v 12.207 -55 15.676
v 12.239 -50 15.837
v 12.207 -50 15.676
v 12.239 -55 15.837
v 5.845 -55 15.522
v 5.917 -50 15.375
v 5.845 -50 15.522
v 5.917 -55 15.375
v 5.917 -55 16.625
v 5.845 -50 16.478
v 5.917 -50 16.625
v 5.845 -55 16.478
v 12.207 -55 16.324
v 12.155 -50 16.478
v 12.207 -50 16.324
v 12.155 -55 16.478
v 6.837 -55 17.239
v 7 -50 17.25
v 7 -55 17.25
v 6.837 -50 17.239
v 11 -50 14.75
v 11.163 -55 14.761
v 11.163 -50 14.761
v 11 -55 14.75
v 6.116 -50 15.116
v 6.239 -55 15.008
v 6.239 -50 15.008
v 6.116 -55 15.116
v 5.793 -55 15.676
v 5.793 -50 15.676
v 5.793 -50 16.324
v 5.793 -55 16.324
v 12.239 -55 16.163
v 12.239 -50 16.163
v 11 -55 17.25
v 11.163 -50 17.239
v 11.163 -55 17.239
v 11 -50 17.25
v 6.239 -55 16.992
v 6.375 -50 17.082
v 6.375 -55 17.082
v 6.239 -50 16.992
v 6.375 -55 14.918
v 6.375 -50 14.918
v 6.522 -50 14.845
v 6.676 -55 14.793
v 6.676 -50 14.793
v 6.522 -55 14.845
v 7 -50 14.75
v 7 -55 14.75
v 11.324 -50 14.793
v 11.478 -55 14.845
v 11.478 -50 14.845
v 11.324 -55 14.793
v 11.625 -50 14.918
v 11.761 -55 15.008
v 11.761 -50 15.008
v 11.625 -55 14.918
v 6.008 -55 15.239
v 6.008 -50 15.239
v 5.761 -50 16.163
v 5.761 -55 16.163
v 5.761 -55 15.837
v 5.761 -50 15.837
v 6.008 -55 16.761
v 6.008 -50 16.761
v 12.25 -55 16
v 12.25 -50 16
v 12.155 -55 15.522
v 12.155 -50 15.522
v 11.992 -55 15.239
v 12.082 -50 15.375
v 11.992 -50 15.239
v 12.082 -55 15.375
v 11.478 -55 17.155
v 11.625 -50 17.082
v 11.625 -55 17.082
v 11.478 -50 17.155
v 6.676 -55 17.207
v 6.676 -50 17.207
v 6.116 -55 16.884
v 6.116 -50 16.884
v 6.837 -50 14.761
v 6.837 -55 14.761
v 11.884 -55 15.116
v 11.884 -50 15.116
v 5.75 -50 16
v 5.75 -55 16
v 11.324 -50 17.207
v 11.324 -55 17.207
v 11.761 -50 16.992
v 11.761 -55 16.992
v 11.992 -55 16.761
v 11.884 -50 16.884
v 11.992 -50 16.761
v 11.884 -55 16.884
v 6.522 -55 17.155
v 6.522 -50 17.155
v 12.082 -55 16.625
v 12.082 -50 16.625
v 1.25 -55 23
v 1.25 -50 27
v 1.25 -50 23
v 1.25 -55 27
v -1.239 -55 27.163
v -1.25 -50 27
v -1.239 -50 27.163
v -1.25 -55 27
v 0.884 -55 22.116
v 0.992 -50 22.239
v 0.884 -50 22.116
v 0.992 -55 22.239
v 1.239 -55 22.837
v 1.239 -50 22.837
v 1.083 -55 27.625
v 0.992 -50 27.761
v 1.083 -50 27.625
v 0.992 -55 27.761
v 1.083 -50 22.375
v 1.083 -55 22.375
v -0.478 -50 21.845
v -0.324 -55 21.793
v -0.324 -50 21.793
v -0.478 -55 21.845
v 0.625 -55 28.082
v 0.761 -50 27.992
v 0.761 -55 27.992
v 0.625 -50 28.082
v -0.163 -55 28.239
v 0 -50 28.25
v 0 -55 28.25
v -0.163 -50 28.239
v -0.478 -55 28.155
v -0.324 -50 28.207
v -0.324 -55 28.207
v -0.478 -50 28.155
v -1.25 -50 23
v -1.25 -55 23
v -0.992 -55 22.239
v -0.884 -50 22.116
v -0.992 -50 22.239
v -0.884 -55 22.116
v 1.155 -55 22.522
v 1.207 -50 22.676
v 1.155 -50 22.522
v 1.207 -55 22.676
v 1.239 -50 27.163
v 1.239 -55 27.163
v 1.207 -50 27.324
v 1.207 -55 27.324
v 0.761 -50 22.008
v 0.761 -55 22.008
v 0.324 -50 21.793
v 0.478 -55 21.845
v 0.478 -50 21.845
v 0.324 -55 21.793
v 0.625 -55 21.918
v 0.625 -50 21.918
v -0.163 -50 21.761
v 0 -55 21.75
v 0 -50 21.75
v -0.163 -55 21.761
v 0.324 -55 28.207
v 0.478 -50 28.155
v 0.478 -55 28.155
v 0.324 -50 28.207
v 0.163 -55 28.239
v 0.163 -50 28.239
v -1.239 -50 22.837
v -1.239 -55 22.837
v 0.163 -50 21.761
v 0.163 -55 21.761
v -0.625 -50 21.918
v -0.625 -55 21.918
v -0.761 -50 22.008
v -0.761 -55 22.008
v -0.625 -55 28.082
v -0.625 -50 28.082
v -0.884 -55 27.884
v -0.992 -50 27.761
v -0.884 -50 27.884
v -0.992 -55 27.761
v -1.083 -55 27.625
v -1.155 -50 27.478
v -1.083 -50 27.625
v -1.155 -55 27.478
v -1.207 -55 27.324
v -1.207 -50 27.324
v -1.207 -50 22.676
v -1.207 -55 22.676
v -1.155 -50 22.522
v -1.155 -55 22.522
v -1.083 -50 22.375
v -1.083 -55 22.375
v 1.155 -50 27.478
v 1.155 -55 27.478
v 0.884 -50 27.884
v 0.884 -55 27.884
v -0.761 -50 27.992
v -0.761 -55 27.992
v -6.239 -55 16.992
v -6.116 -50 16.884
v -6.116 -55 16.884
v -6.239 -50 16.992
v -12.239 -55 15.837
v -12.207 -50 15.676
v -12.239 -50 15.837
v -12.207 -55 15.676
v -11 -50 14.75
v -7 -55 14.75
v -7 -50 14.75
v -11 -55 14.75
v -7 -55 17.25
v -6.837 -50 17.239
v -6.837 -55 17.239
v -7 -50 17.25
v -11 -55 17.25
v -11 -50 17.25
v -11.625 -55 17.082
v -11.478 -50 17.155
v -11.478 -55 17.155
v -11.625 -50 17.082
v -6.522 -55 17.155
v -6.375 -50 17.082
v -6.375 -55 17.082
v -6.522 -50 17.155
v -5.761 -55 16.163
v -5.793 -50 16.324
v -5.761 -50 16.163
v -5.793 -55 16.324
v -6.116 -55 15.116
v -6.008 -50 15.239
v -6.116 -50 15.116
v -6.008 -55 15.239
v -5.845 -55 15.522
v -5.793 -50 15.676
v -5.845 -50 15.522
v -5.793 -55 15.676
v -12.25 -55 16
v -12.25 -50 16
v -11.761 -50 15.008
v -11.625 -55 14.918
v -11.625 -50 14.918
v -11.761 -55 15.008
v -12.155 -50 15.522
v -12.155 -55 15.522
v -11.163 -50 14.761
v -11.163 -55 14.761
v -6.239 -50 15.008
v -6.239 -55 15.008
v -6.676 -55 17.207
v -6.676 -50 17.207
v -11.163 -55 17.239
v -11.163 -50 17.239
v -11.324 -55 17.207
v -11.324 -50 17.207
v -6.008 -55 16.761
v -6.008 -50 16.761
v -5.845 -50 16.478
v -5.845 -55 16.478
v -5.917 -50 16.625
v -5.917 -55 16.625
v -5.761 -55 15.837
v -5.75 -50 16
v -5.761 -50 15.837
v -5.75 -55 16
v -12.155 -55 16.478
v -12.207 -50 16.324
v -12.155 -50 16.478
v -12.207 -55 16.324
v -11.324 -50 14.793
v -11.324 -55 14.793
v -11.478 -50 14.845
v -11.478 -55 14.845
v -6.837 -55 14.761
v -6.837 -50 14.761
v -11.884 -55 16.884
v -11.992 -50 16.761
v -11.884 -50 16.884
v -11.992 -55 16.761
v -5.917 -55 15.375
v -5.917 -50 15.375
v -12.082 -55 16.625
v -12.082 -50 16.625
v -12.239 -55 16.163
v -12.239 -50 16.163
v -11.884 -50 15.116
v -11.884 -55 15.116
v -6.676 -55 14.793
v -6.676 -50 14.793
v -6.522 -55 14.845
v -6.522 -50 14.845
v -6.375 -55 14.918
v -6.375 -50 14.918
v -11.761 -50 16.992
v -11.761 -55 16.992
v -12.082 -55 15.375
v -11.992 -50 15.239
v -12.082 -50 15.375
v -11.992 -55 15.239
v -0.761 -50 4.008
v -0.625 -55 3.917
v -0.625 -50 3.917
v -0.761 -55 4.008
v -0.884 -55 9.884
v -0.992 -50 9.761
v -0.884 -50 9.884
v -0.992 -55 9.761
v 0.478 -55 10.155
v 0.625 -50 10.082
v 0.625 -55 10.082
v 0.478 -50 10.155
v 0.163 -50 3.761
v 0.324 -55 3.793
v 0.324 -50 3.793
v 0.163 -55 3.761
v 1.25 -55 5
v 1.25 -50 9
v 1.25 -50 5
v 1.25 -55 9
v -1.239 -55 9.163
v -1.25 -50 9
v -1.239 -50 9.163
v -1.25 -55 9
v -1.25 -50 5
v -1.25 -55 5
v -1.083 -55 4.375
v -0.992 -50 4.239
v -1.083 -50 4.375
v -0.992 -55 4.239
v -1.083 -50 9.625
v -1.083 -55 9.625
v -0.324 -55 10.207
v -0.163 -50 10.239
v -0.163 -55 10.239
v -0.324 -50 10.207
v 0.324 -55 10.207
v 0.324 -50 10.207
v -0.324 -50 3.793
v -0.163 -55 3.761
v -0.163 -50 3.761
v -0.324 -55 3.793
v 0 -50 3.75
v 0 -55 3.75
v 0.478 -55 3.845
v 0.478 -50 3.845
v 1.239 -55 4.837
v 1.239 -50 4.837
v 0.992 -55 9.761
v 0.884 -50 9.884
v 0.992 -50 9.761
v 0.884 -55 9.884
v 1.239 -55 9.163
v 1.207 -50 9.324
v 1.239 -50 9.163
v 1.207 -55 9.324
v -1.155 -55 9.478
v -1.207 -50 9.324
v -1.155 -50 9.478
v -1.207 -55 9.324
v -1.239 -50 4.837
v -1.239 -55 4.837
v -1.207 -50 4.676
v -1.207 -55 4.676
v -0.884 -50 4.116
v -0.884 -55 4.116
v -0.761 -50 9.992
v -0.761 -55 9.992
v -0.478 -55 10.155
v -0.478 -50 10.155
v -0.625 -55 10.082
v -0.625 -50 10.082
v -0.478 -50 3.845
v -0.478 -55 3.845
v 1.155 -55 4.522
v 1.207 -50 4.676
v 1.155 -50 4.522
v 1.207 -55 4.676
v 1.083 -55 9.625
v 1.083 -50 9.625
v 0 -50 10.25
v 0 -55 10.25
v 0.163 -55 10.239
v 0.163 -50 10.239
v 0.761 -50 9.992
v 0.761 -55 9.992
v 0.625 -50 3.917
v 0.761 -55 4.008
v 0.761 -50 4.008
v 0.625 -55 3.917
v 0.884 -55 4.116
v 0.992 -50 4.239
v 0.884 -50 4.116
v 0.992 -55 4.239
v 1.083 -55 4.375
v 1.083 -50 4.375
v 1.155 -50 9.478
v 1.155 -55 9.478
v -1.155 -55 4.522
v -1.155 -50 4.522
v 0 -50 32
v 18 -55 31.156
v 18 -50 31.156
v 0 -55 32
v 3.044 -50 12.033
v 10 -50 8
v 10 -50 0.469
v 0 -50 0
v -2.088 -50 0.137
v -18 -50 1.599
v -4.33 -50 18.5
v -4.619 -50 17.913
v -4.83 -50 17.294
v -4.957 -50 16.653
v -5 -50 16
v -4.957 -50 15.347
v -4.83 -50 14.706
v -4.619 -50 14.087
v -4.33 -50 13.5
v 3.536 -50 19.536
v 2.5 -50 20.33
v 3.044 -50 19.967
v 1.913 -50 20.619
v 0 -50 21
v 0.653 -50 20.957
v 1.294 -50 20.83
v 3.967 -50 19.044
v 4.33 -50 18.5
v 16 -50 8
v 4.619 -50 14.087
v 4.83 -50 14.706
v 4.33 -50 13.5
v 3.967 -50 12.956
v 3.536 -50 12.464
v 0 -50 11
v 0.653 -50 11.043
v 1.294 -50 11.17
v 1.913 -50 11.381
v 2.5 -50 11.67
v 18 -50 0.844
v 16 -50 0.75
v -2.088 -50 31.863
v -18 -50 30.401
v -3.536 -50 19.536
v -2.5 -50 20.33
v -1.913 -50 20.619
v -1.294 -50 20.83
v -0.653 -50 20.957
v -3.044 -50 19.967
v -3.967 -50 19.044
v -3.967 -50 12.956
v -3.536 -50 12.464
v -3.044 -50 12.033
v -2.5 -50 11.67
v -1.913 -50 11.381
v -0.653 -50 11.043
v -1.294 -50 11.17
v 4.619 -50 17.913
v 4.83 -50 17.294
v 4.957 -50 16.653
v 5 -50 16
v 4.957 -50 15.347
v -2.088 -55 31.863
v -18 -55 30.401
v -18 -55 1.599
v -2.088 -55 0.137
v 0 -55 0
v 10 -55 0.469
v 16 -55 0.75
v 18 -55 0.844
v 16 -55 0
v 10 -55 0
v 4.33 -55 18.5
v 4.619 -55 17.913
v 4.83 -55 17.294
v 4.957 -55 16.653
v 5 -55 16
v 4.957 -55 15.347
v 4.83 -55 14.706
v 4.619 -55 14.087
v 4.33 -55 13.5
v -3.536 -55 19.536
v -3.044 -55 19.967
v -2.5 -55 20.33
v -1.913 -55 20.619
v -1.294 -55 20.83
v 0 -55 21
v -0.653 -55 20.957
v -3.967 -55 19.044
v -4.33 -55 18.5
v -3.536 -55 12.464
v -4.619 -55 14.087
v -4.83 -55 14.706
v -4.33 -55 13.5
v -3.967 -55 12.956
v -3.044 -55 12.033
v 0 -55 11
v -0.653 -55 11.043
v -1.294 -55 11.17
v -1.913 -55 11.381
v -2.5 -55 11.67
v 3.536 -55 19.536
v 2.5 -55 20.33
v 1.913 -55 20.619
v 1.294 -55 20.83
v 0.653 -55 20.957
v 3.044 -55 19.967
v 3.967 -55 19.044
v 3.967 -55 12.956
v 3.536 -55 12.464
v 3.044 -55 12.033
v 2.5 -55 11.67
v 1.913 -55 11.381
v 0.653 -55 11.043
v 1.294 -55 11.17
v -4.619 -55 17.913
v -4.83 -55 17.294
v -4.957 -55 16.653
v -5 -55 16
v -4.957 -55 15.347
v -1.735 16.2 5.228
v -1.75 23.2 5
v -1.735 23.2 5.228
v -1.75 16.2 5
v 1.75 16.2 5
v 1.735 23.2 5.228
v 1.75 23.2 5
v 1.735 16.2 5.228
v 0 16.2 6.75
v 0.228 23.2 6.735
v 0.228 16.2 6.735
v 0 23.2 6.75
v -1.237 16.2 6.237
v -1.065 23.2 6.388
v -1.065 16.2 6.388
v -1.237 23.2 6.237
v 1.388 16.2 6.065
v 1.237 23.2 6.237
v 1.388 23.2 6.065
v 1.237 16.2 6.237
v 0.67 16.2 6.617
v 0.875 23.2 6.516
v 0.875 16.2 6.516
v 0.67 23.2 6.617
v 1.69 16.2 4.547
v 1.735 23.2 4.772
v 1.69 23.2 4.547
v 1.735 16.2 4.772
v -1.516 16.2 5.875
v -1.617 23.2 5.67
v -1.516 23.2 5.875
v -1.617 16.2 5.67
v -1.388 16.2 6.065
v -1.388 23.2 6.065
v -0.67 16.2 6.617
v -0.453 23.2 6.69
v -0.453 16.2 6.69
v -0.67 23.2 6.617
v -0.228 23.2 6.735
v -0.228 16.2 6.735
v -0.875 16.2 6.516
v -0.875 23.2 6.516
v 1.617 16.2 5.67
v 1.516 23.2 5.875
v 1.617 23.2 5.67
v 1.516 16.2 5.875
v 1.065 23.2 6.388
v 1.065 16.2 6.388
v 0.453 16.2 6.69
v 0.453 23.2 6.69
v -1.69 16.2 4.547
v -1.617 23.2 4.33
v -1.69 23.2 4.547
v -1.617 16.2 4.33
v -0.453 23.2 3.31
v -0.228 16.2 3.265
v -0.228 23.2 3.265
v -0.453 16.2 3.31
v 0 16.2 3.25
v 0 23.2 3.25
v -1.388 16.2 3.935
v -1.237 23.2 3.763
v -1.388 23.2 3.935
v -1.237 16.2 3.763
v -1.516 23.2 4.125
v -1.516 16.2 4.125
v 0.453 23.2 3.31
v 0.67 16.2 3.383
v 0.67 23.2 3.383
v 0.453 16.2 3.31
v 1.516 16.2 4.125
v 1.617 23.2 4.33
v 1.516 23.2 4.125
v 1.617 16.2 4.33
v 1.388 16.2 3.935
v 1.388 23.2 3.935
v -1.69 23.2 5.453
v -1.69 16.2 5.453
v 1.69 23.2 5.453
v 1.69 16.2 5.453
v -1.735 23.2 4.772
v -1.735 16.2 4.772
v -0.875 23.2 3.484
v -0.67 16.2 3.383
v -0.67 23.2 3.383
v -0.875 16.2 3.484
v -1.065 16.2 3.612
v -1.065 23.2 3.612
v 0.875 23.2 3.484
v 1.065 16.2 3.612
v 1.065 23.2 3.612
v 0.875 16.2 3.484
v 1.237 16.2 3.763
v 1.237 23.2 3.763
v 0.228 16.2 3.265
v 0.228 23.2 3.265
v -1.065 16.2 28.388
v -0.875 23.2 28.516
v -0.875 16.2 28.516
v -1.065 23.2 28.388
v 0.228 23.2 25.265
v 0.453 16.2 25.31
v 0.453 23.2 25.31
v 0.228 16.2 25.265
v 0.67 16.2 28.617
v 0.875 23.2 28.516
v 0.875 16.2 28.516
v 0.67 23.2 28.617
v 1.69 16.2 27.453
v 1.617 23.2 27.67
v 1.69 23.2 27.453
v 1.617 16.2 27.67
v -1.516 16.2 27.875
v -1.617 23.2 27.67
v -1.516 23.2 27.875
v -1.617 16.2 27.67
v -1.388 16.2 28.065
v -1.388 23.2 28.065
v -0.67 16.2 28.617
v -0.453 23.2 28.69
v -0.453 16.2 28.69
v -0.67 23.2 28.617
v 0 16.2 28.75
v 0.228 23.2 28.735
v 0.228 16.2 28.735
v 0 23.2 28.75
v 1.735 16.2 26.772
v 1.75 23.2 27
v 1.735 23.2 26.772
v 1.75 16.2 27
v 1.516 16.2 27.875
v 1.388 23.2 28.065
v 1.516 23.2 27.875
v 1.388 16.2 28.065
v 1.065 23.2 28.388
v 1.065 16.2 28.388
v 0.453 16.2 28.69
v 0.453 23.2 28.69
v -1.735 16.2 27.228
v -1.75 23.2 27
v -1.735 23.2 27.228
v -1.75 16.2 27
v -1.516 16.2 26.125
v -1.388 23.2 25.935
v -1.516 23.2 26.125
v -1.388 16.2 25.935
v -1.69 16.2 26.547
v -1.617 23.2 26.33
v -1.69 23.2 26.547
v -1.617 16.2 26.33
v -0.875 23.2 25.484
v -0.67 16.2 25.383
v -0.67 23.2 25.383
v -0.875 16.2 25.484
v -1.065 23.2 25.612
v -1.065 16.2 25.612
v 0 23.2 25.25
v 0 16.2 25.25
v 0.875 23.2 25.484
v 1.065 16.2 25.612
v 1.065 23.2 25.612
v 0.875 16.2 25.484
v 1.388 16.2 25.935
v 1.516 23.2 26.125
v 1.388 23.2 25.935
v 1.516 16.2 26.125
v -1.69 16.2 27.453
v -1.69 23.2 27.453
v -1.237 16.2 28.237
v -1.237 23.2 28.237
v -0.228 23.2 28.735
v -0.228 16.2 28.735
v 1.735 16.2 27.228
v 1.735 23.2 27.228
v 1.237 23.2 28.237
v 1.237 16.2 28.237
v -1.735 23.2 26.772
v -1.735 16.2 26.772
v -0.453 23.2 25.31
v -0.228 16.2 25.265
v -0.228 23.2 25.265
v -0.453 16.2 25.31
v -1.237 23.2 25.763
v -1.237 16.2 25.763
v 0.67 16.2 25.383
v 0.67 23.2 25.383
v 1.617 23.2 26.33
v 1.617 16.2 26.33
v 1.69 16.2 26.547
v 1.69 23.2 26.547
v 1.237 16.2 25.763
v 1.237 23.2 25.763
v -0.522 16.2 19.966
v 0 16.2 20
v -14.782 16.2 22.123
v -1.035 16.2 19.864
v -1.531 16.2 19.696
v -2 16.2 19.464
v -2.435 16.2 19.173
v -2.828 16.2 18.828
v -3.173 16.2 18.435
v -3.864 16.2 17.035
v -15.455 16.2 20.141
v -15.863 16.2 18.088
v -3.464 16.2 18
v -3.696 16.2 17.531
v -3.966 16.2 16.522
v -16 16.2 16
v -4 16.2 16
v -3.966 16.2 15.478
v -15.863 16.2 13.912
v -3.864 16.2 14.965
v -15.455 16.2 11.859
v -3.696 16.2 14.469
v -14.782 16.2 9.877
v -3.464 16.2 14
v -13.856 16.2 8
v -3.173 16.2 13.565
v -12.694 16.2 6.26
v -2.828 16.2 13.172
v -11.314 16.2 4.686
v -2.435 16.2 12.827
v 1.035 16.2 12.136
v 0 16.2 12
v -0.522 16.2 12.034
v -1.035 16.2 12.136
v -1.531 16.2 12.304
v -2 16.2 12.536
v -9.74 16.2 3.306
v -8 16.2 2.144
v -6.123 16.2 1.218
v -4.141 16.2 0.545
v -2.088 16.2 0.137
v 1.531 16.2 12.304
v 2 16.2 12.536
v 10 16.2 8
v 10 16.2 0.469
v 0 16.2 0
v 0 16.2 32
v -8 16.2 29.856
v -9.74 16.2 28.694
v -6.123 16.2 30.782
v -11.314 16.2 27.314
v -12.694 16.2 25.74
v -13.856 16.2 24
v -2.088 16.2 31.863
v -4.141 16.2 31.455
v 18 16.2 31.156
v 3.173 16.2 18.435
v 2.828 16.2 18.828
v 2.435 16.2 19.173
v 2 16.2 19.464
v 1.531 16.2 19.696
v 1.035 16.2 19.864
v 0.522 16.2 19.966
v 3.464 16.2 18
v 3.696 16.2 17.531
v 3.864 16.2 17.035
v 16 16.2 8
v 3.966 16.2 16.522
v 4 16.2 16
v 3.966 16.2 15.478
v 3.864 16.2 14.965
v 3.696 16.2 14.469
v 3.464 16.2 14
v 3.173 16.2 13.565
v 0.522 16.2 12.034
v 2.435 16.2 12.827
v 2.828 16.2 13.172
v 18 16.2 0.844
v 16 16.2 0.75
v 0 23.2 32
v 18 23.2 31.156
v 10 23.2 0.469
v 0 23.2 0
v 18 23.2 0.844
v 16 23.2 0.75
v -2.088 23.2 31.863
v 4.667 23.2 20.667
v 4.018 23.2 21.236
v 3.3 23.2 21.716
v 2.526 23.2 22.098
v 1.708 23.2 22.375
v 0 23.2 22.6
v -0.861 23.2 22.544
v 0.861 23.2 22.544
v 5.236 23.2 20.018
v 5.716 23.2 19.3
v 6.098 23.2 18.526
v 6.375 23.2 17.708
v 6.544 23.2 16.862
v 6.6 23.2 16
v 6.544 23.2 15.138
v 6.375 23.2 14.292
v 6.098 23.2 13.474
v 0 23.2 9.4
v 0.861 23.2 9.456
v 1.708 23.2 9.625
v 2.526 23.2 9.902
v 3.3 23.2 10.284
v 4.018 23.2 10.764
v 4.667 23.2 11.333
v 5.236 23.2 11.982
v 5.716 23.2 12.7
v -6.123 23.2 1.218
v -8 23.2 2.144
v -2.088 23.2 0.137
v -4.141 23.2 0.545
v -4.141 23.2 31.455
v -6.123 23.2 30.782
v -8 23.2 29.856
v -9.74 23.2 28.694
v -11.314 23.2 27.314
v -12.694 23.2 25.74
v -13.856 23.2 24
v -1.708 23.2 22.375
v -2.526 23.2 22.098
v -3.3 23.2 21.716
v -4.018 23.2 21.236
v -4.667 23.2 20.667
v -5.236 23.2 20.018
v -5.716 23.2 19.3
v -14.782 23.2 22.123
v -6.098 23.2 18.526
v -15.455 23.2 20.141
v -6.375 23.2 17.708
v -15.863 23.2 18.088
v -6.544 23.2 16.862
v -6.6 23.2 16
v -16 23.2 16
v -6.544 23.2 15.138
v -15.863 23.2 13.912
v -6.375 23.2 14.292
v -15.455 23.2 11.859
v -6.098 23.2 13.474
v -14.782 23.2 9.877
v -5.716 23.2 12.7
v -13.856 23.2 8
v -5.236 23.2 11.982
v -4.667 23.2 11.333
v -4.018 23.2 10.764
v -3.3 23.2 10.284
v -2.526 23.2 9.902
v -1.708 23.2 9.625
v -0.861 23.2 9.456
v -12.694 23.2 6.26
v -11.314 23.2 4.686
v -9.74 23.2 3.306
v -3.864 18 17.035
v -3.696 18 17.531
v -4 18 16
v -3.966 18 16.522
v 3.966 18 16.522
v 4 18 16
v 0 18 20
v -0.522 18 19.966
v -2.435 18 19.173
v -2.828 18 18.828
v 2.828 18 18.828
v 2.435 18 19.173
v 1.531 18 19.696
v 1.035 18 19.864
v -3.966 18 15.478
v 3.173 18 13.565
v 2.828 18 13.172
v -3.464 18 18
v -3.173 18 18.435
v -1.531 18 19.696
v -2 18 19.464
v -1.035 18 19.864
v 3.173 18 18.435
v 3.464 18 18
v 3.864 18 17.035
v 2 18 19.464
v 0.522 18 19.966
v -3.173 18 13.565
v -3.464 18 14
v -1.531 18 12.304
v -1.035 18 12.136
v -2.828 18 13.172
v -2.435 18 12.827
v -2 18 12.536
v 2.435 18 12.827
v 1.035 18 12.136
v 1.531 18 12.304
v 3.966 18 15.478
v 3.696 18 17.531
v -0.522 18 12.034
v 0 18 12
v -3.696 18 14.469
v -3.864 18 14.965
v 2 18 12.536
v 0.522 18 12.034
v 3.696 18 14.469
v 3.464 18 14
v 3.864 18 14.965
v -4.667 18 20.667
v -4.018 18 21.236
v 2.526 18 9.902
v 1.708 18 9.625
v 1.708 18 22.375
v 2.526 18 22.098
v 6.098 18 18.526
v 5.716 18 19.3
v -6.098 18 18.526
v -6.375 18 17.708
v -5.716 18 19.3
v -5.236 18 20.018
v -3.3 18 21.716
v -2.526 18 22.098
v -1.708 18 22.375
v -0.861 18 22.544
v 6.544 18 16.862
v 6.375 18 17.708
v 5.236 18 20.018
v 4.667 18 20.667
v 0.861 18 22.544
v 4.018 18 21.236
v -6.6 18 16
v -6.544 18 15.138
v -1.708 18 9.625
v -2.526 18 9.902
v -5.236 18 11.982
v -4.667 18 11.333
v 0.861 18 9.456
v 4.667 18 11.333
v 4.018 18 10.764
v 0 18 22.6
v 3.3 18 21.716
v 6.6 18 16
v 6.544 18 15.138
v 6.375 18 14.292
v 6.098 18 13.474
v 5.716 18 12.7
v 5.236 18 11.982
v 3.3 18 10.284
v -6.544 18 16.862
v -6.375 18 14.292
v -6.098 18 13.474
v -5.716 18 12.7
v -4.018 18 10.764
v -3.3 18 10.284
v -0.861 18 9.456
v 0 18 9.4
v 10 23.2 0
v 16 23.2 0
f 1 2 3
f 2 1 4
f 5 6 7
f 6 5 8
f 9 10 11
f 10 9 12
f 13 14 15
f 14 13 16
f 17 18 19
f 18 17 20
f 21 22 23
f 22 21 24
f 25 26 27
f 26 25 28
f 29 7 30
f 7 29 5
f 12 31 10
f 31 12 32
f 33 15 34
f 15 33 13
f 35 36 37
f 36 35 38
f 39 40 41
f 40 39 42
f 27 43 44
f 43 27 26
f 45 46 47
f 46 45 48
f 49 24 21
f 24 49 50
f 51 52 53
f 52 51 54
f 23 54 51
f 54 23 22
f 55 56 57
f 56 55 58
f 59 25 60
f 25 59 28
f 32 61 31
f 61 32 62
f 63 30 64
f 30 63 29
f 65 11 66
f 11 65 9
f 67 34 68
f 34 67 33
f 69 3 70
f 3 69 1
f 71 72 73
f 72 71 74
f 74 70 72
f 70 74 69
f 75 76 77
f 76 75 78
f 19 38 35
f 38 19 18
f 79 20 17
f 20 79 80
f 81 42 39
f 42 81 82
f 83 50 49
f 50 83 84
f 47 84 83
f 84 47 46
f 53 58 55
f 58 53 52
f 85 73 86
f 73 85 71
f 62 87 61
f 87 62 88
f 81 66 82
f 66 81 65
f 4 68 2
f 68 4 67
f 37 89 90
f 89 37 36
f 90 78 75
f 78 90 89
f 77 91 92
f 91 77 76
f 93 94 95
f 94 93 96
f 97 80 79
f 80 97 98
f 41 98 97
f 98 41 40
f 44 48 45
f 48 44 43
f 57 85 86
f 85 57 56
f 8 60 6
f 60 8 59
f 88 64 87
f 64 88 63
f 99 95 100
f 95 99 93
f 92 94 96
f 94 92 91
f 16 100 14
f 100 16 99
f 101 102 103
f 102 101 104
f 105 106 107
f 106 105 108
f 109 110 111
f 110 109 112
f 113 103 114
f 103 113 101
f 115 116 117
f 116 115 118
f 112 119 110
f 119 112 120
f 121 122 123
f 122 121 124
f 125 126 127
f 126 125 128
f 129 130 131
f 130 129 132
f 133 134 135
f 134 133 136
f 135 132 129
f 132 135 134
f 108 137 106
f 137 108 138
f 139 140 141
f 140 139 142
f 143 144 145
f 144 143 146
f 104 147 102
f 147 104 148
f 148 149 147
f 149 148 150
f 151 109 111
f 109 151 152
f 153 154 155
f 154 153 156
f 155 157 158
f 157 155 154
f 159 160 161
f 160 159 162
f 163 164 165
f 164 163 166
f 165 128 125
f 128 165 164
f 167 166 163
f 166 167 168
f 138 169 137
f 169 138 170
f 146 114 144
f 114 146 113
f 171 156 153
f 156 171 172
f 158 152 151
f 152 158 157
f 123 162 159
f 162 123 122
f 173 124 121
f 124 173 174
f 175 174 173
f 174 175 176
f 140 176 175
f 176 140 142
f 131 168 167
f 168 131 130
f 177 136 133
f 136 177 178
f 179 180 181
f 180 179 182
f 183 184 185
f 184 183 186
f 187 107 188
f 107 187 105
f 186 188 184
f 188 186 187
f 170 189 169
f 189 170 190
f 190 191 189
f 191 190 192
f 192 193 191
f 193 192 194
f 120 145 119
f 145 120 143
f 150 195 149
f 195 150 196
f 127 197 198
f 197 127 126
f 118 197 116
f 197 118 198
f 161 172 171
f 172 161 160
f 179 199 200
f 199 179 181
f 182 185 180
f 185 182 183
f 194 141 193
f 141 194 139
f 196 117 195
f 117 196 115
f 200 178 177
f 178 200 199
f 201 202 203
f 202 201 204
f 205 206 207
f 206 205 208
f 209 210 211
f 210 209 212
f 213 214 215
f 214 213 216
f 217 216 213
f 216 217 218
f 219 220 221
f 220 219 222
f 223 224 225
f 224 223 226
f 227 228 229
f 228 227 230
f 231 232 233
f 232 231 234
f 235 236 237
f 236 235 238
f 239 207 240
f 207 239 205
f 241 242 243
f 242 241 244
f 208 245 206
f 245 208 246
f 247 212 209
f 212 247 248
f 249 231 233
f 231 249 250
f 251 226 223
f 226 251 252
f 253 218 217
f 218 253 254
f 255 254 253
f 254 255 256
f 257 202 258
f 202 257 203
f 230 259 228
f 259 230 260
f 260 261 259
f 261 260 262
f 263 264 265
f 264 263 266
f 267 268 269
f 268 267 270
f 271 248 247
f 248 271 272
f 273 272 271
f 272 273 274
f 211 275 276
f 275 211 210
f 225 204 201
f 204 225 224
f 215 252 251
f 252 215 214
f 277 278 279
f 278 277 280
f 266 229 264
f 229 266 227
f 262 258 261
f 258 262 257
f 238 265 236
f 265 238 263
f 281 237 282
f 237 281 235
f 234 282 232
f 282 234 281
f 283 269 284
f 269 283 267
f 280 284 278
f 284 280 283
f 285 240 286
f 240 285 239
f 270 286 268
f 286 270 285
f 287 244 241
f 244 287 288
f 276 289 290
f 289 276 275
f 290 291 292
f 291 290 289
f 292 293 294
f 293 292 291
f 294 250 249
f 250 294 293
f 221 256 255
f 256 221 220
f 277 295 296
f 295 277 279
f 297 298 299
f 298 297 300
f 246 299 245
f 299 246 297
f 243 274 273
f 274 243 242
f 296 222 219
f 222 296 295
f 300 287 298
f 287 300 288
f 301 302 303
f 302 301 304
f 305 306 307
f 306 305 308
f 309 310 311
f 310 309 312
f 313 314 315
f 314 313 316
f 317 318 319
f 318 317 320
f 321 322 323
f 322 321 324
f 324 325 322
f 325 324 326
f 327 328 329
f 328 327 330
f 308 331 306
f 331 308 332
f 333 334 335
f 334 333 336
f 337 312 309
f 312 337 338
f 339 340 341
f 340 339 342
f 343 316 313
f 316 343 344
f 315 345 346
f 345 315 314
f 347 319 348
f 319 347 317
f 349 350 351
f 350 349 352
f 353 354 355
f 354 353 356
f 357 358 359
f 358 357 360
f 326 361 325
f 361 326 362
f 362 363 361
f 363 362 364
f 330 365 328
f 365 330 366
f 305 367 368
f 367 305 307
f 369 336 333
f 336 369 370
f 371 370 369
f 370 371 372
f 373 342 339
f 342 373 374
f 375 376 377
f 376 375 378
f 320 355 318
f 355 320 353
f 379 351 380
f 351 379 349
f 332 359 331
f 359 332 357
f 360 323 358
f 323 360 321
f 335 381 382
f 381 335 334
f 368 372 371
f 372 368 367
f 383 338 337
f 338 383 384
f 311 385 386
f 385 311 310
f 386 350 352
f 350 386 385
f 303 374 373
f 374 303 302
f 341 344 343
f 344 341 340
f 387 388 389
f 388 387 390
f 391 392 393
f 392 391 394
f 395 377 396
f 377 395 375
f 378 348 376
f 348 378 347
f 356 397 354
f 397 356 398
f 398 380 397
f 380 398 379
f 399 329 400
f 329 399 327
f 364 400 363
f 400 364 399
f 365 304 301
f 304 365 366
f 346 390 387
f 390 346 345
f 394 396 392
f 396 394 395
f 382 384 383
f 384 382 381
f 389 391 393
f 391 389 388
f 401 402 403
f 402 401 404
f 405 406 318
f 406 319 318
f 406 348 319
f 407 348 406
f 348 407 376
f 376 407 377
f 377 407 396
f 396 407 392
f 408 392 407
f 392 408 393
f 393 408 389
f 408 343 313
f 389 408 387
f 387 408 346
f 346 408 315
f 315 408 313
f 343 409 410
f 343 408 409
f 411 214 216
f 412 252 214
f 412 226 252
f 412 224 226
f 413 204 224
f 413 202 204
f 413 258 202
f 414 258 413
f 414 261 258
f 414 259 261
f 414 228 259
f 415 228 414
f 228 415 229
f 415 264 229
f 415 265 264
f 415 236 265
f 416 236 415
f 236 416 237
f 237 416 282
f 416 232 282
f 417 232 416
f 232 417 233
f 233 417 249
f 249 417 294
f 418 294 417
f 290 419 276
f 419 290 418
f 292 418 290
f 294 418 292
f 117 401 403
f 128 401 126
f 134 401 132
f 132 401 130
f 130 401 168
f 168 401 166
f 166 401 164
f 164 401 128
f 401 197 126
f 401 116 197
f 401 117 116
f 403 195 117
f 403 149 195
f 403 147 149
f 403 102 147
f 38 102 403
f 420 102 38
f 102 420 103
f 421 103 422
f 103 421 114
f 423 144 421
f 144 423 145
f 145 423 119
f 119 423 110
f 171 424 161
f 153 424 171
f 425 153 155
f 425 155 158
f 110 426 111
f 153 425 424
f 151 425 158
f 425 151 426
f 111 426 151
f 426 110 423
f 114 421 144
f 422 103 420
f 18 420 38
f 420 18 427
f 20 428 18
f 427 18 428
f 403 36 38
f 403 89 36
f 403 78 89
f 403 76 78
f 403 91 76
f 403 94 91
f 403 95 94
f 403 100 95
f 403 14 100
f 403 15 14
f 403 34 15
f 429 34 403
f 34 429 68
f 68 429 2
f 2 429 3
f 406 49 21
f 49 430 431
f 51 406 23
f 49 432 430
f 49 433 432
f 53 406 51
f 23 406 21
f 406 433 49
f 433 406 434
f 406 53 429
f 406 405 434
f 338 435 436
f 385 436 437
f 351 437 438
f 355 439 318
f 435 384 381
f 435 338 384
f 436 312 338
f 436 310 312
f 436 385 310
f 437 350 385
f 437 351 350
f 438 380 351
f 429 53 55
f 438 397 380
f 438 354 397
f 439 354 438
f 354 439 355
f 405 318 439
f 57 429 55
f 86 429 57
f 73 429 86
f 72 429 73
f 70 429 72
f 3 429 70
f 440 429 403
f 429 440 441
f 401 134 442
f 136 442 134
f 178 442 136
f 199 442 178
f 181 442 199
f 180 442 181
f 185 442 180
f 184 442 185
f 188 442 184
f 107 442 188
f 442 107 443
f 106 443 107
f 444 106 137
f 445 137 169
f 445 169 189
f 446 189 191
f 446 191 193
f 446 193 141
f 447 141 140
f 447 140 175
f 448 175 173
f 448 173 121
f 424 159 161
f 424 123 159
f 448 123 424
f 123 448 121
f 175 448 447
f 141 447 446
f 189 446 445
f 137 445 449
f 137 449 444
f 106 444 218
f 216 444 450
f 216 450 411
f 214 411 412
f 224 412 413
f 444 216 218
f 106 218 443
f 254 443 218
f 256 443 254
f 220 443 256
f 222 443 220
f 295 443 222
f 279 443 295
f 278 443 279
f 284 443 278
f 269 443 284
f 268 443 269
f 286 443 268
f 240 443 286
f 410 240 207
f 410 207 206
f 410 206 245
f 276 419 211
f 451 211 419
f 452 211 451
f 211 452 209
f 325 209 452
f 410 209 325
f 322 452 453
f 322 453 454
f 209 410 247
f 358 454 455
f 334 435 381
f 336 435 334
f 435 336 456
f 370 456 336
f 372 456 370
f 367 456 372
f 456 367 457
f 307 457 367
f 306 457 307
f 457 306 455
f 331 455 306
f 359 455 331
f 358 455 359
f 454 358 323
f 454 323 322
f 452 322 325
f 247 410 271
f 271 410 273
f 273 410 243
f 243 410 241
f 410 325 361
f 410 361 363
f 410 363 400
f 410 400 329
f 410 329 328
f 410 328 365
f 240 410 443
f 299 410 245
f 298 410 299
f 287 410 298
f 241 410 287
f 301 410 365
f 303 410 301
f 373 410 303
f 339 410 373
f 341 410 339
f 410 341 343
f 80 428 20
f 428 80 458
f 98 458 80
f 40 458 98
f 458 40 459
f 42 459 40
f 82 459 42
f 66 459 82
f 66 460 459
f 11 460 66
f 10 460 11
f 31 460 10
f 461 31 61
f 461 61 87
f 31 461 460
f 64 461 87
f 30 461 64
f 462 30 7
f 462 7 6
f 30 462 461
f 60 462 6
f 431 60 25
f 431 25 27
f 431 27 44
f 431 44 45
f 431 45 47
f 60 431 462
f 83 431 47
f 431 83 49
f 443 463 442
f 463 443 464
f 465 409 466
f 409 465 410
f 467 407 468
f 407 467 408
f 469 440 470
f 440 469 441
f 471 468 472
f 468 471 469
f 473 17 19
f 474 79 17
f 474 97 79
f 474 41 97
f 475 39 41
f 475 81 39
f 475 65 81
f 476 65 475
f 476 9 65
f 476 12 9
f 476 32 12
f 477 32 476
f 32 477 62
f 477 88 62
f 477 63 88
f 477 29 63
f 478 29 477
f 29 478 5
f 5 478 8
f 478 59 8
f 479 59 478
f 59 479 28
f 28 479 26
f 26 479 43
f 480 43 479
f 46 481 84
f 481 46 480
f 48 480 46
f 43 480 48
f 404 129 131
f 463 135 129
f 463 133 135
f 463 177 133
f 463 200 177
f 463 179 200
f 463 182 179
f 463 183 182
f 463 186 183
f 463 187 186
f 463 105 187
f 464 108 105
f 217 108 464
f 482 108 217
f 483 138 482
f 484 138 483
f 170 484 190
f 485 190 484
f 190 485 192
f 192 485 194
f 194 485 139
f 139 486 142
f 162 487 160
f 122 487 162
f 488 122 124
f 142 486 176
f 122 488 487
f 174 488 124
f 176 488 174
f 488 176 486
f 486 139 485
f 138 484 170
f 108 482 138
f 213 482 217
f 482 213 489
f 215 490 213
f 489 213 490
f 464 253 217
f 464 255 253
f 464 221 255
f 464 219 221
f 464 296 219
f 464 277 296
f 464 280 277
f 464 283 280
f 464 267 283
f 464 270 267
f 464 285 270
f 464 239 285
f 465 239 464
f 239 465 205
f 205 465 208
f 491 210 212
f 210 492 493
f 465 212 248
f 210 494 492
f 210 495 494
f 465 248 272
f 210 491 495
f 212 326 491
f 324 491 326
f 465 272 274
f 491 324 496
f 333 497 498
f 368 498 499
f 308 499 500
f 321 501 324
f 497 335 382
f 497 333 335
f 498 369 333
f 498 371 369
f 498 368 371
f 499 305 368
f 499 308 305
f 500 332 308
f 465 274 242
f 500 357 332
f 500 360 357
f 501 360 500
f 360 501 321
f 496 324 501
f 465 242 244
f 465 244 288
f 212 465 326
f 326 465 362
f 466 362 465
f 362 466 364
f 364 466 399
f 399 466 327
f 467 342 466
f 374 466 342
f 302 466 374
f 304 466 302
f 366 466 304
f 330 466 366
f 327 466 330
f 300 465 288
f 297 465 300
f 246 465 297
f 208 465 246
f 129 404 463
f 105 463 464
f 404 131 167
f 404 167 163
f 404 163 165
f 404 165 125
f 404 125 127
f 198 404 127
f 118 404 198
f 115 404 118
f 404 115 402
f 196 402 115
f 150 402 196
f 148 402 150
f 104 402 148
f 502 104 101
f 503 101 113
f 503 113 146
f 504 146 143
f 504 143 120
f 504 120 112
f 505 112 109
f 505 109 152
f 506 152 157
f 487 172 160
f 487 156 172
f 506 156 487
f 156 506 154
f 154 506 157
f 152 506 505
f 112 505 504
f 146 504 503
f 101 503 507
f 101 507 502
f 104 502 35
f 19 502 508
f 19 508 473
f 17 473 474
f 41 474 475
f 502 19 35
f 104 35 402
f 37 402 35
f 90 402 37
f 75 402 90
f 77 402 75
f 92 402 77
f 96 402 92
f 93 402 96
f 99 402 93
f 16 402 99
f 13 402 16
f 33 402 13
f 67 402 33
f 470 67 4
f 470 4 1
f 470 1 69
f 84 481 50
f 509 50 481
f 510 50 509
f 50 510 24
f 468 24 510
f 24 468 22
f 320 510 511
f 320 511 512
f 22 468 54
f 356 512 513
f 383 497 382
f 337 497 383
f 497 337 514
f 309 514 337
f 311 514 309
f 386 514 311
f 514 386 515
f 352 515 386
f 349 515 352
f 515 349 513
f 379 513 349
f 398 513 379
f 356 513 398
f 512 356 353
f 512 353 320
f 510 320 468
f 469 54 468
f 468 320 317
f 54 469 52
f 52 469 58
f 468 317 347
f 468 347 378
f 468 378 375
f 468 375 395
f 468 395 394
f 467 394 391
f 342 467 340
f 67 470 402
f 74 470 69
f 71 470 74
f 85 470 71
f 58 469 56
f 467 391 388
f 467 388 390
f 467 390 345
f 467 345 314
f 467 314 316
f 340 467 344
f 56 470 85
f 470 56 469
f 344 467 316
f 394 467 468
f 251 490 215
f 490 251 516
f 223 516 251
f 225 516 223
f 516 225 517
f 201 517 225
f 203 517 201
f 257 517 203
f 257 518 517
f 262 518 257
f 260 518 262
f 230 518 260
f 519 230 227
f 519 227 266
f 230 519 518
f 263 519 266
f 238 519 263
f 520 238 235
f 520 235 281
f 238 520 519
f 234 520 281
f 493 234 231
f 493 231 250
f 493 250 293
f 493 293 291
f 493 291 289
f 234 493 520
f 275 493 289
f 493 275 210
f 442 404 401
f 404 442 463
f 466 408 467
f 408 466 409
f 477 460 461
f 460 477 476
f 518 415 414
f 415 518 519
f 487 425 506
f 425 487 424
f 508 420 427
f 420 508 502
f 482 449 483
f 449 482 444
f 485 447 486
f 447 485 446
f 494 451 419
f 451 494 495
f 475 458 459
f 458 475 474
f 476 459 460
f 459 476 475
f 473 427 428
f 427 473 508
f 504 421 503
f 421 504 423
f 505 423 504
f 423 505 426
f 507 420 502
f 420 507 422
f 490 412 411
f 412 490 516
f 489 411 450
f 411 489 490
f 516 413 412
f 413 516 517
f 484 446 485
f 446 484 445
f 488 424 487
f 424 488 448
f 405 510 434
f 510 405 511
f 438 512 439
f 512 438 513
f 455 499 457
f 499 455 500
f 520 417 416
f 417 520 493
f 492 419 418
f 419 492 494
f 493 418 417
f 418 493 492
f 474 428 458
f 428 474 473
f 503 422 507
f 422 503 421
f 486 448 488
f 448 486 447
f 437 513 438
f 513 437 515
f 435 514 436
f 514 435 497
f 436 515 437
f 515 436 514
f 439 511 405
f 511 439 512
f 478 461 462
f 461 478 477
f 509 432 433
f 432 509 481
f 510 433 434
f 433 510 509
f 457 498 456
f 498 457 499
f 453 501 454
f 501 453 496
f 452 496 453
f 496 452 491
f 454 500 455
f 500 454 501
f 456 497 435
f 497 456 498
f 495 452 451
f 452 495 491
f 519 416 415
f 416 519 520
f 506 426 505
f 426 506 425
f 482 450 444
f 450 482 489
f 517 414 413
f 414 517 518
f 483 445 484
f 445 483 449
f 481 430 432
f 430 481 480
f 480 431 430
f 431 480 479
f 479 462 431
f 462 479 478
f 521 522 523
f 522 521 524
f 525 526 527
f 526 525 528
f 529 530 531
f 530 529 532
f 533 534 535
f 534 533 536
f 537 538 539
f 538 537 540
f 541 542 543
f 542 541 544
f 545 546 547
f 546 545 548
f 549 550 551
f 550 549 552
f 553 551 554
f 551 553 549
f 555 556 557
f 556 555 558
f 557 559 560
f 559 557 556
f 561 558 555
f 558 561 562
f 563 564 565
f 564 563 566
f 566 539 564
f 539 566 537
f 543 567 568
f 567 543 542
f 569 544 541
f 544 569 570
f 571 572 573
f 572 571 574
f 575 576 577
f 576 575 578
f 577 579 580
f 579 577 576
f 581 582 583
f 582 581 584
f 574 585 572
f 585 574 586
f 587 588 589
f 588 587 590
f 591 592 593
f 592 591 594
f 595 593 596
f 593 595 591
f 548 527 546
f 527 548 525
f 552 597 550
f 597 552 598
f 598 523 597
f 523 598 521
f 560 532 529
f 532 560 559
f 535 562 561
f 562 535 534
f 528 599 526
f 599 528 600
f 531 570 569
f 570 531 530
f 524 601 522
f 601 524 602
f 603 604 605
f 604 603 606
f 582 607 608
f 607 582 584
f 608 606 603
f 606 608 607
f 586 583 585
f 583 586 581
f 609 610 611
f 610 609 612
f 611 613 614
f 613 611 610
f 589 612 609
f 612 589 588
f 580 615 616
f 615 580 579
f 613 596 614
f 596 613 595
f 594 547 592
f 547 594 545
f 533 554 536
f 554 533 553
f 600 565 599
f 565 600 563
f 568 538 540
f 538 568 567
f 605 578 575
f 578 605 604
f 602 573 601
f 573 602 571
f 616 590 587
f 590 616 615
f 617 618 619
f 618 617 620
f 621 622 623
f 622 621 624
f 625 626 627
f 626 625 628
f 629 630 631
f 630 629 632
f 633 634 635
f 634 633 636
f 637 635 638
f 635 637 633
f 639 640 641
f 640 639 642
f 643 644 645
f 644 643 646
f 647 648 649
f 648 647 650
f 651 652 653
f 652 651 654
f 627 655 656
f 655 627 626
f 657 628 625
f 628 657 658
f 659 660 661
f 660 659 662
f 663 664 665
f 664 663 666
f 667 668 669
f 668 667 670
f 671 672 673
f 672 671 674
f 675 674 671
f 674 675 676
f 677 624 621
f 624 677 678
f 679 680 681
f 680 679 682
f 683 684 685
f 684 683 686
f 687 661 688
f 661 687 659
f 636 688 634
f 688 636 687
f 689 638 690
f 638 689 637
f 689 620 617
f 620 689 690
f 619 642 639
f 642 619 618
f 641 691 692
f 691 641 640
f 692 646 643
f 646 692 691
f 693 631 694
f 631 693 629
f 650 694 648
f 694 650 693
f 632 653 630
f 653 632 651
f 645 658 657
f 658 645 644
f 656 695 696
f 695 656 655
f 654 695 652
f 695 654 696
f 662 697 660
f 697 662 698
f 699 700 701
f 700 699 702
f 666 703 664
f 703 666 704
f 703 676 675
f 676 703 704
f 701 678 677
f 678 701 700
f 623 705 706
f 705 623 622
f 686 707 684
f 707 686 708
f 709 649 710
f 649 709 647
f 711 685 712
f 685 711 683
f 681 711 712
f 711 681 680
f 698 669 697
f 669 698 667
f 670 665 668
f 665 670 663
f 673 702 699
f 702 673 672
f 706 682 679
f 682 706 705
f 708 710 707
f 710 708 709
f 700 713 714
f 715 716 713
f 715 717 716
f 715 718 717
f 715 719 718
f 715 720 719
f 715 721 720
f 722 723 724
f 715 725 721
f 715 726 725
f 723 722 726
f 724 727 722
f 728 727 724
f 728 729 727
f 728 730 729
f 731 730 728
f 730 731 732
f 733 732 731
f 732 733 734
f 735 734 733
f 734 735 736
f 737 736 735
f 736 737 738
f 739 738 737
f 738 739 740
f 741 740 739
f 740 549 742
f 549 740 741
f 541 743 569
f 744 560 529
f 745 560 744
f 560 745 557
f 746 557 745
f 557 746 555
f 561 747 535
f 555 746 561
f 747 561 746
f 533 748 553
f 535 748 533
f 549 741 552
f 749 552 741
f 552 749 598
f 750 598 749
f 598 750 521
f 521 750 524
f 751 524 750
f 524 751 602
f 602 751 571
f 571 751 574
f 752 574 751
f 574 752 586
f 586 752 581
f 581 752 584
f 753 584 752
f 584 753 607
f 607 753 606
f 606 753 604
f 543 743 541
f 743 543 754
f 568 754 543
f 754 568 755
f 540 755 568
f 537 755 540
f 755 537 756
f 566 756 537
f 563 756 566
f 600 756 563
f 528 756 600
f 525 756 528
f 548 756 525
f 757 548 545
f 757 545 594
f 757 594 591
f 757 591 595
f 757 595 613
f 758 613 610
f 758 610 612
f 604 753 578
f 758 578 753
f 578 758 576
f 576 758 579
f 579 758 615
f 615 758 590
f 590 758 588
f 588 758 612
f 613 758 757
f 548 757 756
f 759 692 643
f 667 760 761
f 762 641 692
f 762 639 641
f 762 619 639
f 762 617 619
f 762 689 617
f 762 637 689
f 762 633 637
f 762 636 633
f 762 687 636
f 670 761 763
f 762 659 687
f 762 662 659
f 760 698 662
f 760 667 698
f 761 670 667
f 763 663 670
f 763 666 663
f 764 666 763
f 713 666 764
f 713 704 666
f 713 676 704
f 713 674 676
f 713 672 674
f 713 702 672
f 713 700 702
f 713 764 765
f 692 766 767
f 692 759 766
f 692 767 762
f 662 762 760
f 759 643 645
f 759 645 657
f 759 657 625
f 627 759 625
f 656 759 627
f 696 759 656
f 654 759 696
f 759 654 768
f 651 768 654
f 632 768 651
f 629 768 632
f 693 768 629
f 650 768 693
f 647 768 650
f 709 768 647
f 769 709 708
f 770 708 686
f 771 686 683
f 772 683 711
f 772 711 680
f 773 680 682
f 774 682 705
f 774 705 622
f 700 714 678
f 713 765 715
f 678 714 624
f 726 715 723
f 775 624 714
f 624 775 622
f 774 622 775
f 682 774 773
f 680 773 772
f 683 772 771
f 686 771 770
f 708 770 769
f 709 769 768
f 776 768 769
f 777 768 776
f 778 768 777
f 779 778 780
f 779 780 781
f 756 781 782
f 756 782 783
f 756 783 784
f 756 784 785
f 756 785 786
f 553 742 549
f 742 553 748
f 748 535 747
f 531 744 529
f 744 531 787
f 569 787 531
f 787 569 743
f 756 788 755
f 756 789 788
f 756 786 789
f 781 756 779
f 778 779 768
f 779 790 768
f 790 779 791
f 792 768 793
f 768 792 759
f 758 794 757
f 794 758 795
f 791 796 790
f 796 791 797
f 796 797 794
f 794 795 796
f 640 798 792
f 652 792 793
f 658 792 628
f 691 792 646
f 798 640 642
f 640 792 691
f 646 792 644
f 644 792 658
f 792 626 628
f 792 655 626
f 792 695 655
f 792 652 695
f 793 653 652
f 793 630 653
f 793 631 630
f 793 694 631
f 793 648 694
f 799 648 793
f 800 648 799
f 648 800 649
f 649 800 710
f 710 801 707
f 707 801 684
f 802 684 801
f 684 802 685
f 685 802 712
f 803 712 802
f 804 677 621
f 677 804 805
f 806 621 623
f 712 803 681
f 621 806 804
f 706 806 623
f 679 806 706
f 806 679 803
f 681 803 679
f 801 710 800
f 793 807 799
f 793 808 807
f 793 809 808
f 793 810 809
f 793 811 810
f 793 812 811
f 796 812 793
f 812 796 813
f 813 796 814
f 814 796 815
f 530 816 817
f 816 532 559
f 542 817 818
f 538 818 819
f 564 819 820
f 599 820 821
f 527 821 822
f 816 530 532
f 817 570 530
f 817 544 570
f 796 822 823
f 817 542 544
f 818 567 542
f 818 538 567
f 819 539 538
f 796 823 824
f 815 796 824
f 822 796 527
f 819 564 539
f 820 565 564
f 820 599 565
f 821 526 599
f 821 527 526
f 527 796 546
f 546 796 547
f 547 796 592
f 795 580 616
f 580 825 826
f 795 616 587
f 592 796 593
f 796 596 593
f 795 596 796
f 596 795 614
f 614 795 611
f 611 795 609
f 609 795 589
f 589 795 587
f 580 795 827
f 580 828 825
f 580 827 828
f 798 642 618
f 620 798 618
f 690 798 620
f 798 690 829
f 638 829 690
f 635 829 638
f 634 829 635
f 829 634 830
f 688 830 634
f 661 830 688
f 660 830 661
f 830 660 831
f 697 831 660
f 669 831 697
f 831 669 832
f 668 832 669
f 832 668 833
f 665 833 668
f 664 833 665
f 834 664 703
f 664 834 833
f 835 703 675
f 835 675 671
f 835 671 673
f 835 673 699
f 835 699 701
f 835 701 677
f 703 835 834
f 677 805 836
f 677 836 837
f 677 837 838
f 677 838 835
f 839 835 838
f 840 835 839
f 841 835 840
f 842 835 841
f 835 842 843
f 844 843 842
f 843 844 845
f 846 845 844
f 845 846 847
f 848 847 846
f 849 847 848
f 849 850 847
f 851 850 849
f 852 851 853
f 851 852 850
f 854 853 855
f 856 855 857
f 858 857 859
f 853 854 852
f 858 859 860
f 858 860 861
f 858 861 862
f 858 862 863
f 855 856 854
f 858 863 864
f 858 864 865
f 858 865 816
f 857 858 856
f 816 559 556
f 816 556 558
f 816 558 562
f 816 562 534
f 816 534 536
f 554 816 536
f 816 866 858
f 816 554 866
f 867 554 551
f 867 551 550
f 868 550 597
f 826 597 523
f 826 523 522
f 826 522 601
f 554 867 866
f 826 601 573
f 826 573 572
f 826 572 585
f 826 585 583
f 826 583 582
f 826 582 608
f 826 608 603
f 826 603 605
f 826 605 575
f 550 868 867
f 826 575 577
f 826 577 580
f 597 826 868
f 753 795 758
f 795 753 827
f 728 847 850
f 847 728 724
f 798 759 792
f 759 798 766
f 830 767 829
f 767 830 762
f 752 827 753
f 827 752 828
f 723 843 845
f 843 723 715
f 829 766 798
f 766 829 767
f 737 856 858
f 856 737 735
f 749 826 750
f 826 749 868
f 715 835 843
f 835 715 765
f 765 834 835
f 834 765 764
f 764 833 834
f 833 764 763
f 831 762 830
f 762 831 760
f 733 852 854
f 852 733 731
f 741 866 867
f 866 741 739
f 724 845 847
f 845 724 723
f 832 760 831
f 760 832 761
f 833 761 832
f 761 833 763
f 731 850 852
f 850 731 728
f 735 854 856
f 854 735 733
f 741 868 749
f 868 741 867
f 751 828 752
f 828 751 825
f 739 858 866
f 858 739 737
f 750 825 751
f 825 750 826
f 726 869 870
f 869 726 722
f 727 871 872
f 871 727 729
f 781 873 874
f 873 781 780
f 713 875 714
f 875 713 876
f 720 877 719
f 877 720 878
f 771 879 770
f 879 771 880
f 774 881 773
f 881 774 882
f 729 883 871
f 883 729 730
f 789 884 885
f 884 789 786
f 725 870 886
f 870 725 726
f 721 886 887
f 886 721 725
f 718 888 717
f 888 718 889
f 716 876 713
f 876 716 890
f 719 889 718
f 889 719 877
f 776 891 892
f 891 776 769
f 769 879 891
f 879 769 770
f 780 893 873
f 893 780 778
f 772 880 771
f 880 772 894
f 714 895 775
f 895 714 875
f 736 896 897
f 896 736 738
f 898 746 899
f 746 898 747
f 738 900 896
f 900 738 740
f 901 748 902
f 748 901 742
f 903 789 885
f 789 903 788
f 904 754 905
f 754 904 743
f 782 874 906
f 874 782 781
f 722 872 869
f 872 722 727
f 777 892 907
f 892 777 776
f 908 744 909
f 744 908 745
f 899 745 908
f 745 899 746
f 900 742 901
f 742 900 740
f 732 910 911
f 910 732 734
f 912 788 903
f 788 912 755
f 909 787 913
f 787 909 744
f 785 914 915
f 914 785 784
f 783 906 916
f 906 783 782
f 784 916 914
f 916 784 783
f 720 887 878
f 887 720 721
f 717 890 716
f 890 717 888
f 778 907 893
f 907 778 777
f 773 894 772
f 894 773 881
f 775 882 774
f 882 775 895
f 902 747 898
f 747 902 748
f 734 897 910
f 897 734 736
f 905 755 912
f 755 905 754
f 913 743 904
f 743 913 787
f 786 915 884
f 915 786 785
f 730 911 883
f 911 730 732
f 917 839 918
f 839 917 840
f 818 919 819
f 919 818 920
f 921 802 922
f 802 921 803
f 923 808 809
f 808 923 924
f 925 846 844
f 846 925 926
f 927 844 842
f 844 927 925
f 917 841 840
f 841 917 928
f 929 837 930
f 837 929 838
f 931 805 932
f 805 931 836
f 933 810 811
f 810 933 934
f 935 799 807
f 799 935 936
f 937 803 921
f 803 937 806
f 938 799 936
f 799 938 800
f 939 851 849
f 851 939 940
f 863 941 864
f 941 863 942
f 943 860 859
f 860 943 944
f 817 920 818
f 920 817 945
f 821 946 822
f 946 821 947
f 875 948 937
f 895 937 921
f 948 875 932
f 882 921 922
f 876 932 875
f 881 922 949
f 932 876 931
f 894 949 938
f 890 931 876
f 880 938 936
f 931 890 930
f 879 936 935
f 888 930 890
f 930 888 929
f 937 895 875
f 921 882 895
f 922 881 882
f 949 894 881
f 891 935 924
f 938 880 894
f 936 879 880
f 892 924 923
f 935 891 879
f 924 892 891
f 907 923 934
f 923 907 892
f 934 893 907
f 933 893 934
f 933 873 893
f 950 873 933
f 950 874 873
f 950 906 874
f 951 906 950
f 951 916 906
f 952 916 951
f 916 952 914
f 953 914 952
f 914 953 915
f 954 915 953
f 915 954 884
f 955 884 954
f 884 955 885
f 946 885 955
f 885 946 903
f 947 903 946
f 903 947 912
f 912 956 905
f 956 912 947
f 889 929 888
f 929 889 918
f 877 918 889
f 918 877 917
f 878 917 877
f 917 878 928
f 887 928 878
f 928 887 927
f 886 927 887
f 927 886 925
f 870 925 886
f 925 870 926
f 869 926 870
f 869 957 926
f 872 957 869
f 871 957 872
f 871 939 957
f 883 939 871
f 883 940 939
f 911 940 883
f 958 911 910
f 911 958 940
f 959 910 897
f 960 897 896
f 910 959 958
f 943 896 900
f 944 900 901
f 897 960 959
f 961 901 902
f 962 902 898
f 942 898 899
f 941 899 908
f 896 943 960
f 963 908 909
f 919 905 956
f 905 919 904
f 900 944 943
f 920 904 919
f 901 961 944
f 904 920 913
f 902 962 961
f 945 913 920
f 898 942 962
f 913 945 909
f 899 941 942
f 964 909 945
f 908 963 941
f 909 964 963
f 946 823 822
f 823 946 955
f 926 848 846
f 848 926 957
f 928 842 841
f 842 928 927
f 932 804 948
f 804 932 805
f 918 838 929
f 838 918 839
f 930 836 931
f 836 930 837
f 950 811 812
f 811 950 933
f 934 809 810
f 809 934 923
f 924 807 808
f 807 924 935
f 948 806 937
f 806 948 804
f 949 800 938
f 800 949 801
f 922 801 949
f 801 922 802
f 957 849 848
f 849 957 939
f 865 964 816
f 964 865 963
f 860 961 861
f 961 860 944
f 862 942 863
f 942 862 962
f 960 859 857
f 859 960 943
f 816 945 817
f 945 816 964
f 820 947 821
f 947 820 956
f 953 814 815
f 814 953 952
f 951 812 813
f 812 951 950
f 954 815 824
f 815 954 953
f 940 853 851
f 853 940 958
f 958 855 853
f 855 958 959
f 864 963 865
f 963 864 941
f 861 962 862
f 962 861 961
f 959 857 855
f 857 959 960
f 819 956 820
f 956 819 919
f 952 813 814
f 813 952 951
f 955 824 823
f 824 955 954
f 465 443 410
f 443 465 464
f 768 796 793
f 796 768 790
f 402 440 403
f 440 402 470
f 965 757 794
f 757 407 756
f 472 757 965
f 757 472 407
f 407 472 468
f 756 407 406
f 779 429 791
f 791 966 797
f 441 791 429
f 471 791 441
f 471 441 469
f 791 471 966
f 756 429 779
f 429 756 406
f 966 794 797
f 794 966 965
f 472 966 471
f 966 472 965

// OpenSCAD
// file: hobby-joint-common.scad
// Rev A local joint datum: rotation axis at x=y=0, axial direction +z.
$fn=48;
shaft_x=-10.35;
horn_z=50;
front_t=5;
rear_top=-16.2;
rear_t=7;
bridge_r=58;
bridge_length=horn_z-rear_top;
bridge_pitch=14;
seat_d=13.2;
seat_depth=5.2;
module bridge_holes(h) {
    for(y=[-bridge_pitch/2,bridge_pitch/2])
        translate([-bridge_r,y,-1]) cylinder(d=3.5,h=h+2);
}
module arm_blank(t) {
    linear_extrude(t) hull() {
        circle(d=32);
        translate([-bridge_r,0]) square([12,26],center=true);
    }
}
module arm_window(t) {
    translate([0,0,-1]) linear_extrude(t+2) hull()
        for(x=[-40,-25]) translate([x,0]) circle(d=10);
}
// file: hobby-joint-rear-arm.scad
include <hobby-joint-common.scad>
module rear_arm() {
    difference() {
        arm_blank(rear_t);
        arm_window(rear_t);
        translate([0,0,-1]) cylinder(d=8,h=rear_t+2);
        translate([0,0,rear_t-seat_depth]) cylinder(d=seat_d,h=seat_depth+1);
        for(y=[-11,11]) translate([0,y,-1]) cylinder(d=3.5,h=rear_t+2);
        bridge_holes(rear_t);
    }
}
rear_arm();
// file: prototype-lower-leg.scad
include <hobby-joint-common.scad>
// Contact reference is85mm with the matching carrier and1mm rubber pad.
module lower_front_link() {
    difference() {
        linear_extrude(5) hull() {
            circle(d=32);
            translate([-76,0]) square([8,18],center=true);
        }
        translate([0,0,-1]) cylinder(d=10,h=7);
        for(a=[0,90,180,270]) rotate([0,0,a]) hull()
            for(r=[7,11]) translate([r,0,-1]) cylinder(d=2.5,h=7);
        arm_window(5);
        bridge_holes(5);
        for(y=[-4,4]) translate([-76,y,-1]) cylinder(d=3.5,h=7);
    }
}
lower_front_link();
// file: prototype-upper-leg.scad
// MEC-133. Print-flat upper plate and support-free knee-ear saddle. mm.
include <hobby-joint-common.scad>
part="plate"; // plate, saddle, ear-coupon
upper_length=70;
ear_face_z=31; // Assumed underside of actual mounting ears; verify coupon.
ear_plate_t=3;
saddle_base_z=ear_face_z-ear_plate_t;
post_height=horn_z-saddle_base_z;
knee_x=-upper_length;
ear_y=[-14.4,35.1]; // Assumed49.5mm pitch, body centre+10.35mm.
function upper_leg_saddle_z()=saddle_base_z;
function upper_leg_knee_x()=knee_x;
module ear_slots(h) {
    for(x=[knee_x-5,knee_x+5],y=ear_y) hull()
        for(dy=[-1,1]) translate([x,y+dy,-1]) cylinder(d=3.5,h=h+2);
}
module saddle_mount_holes(h) {
    for(y=[-4,4]) translate([knee_x+22,y,-1]) cylinder(d=3.5,h=h+2);
}
module upper_plate() {
    difference() {
        linear_extrude(front_t) union() {
            hull() { circle(d=32); translate([bridge_r,0]) square([12,26],center=true); }
            hull() { circle(d=32); translate([knee_x+22,0]) square([14,22],center=true); }
        }
        translate([0,0,-1]) cylinder(d=10,h=front_t+2);
        for(a=[0,90,180,270]) rotate([0,0,a]) hull()
            for(r=[7,11]) translate([r,0,-1]) cylinder(d=2.5,h=front_t+2);
        for(y=[-bridge_pitch/2,bridge_pitch/2])
            translate([bridge_r,y,-1]) cylinder(d=3.5,h=front_t+2);
        for(s=[-1,1]) translate([0,0,-1]) linear_extrude(front_t+2) hull()
            for(r=[25,36]) translate([s*r,0]) circle(d=9);
        // Clearance around the knee output centre; knee fork follows later.
        translate([knee_x,0,-1]) cylinder(d=38,h=front_t+2);
        saddle_mount_holes(front_t);
    }
}
module knee_ear_saddle(coupon=false) {
    difference() {
        union() {
            translate([knee_x-14,-20,0]) cube([40,60.7,ear_plate_t]);
            if(!coupon) translate([knee_x+19,-8,0]) cube([7,16,post_height]);
        }
        // Knee case is clocked90deg to the link to keep70mm spacing.
        translate([knee_x-10.55,-10.7,-1]) cube([21.1,42.1,post_height+2]);
        ear_slots(post_height);
        saddle_mount_holes(post_height);
    }
}
assert(post_height>ear_plate_t);
if(part=="plate") upper_plate();
else if(part=="saddle") knee_ear_saddle();
else if(part=="ear-coupon") knee_ear_saddle(true);
else assert(false,"Unknown upper-leg part");
// file: prototype-pitch-fork.scad
// MEC-161 experimental one-piece pitch outputs. Existing interfaces retained.
use <prototype-upper-leg.scad>
use <prototype-lower-leg.scad>
use <hobby-joint-rear-arm.scad>
include <hobby-joint-common.scad>
part="upper"; // upper, lower
view="print"; // print, joint
hand=1; // -1 creates the opposite physical print; never a placement transform.
module pitch_fork(kind="upper") {
    side=kind=="upper"?1:-1;
    union() {
        translate([0,0,horn_z])
            if(kind=="upper") upper_plate(); else lower_front_link();
        translate([0,0,rear_top]) rotate([180,0,kind=="upper"?180:0]) rear_arm();
        // Six millimetre side web; overlaps both plates by3mm in y.
        translate([side*bridge_r-6,-16,rear_top-rear_t])
            cube([12,6,horn_z+front_t-rear_top+rear_t]);
        // Flat bed lands under the tips; avoid a long unsupported web.
        for(z=[rear_top-rear_t,horn_z])
            translate([side*bridge_r-6,-16,z]) cube([12,3,z==horn_z?front_t:rear_t]);
    }
}
assert(part=="upper" || part=="lower");
assert(hand==1 || hand==-1);
module handed_fork() {
    if(hand==1) pitch_fork(part); else mirror([0,1,0]) pitch_fork(part);
}
if(view=="joint") handed_fork();
else if(view=="print") translate([0,0,16]) rotate([hand*90,0,0]) handed_fork();
else assert(false,"Unknown view");
// main file
// MEC-163. Actual upper-fork interfaces, same side-on print orientation.
use <prototype-pitch-fork.scad>
$fn=48;
module fork_fit_coupon() {
    union() {
        intersection() {
            pitch_fork("upper");
            translate([-18,-17,-24]) cube([36,34,80]);
        }
        // Coupon-only connector, clear of horn/bearing/retainer interfaces.
        // This replaces the distant web for a smaller fit test, not a strength test.
        translate([10,-16,-23.2]) cube([6,8,78.2]);
    }
}
translate([0,0,16]) rotate([90,0,0]) fork_fit_coupon();
